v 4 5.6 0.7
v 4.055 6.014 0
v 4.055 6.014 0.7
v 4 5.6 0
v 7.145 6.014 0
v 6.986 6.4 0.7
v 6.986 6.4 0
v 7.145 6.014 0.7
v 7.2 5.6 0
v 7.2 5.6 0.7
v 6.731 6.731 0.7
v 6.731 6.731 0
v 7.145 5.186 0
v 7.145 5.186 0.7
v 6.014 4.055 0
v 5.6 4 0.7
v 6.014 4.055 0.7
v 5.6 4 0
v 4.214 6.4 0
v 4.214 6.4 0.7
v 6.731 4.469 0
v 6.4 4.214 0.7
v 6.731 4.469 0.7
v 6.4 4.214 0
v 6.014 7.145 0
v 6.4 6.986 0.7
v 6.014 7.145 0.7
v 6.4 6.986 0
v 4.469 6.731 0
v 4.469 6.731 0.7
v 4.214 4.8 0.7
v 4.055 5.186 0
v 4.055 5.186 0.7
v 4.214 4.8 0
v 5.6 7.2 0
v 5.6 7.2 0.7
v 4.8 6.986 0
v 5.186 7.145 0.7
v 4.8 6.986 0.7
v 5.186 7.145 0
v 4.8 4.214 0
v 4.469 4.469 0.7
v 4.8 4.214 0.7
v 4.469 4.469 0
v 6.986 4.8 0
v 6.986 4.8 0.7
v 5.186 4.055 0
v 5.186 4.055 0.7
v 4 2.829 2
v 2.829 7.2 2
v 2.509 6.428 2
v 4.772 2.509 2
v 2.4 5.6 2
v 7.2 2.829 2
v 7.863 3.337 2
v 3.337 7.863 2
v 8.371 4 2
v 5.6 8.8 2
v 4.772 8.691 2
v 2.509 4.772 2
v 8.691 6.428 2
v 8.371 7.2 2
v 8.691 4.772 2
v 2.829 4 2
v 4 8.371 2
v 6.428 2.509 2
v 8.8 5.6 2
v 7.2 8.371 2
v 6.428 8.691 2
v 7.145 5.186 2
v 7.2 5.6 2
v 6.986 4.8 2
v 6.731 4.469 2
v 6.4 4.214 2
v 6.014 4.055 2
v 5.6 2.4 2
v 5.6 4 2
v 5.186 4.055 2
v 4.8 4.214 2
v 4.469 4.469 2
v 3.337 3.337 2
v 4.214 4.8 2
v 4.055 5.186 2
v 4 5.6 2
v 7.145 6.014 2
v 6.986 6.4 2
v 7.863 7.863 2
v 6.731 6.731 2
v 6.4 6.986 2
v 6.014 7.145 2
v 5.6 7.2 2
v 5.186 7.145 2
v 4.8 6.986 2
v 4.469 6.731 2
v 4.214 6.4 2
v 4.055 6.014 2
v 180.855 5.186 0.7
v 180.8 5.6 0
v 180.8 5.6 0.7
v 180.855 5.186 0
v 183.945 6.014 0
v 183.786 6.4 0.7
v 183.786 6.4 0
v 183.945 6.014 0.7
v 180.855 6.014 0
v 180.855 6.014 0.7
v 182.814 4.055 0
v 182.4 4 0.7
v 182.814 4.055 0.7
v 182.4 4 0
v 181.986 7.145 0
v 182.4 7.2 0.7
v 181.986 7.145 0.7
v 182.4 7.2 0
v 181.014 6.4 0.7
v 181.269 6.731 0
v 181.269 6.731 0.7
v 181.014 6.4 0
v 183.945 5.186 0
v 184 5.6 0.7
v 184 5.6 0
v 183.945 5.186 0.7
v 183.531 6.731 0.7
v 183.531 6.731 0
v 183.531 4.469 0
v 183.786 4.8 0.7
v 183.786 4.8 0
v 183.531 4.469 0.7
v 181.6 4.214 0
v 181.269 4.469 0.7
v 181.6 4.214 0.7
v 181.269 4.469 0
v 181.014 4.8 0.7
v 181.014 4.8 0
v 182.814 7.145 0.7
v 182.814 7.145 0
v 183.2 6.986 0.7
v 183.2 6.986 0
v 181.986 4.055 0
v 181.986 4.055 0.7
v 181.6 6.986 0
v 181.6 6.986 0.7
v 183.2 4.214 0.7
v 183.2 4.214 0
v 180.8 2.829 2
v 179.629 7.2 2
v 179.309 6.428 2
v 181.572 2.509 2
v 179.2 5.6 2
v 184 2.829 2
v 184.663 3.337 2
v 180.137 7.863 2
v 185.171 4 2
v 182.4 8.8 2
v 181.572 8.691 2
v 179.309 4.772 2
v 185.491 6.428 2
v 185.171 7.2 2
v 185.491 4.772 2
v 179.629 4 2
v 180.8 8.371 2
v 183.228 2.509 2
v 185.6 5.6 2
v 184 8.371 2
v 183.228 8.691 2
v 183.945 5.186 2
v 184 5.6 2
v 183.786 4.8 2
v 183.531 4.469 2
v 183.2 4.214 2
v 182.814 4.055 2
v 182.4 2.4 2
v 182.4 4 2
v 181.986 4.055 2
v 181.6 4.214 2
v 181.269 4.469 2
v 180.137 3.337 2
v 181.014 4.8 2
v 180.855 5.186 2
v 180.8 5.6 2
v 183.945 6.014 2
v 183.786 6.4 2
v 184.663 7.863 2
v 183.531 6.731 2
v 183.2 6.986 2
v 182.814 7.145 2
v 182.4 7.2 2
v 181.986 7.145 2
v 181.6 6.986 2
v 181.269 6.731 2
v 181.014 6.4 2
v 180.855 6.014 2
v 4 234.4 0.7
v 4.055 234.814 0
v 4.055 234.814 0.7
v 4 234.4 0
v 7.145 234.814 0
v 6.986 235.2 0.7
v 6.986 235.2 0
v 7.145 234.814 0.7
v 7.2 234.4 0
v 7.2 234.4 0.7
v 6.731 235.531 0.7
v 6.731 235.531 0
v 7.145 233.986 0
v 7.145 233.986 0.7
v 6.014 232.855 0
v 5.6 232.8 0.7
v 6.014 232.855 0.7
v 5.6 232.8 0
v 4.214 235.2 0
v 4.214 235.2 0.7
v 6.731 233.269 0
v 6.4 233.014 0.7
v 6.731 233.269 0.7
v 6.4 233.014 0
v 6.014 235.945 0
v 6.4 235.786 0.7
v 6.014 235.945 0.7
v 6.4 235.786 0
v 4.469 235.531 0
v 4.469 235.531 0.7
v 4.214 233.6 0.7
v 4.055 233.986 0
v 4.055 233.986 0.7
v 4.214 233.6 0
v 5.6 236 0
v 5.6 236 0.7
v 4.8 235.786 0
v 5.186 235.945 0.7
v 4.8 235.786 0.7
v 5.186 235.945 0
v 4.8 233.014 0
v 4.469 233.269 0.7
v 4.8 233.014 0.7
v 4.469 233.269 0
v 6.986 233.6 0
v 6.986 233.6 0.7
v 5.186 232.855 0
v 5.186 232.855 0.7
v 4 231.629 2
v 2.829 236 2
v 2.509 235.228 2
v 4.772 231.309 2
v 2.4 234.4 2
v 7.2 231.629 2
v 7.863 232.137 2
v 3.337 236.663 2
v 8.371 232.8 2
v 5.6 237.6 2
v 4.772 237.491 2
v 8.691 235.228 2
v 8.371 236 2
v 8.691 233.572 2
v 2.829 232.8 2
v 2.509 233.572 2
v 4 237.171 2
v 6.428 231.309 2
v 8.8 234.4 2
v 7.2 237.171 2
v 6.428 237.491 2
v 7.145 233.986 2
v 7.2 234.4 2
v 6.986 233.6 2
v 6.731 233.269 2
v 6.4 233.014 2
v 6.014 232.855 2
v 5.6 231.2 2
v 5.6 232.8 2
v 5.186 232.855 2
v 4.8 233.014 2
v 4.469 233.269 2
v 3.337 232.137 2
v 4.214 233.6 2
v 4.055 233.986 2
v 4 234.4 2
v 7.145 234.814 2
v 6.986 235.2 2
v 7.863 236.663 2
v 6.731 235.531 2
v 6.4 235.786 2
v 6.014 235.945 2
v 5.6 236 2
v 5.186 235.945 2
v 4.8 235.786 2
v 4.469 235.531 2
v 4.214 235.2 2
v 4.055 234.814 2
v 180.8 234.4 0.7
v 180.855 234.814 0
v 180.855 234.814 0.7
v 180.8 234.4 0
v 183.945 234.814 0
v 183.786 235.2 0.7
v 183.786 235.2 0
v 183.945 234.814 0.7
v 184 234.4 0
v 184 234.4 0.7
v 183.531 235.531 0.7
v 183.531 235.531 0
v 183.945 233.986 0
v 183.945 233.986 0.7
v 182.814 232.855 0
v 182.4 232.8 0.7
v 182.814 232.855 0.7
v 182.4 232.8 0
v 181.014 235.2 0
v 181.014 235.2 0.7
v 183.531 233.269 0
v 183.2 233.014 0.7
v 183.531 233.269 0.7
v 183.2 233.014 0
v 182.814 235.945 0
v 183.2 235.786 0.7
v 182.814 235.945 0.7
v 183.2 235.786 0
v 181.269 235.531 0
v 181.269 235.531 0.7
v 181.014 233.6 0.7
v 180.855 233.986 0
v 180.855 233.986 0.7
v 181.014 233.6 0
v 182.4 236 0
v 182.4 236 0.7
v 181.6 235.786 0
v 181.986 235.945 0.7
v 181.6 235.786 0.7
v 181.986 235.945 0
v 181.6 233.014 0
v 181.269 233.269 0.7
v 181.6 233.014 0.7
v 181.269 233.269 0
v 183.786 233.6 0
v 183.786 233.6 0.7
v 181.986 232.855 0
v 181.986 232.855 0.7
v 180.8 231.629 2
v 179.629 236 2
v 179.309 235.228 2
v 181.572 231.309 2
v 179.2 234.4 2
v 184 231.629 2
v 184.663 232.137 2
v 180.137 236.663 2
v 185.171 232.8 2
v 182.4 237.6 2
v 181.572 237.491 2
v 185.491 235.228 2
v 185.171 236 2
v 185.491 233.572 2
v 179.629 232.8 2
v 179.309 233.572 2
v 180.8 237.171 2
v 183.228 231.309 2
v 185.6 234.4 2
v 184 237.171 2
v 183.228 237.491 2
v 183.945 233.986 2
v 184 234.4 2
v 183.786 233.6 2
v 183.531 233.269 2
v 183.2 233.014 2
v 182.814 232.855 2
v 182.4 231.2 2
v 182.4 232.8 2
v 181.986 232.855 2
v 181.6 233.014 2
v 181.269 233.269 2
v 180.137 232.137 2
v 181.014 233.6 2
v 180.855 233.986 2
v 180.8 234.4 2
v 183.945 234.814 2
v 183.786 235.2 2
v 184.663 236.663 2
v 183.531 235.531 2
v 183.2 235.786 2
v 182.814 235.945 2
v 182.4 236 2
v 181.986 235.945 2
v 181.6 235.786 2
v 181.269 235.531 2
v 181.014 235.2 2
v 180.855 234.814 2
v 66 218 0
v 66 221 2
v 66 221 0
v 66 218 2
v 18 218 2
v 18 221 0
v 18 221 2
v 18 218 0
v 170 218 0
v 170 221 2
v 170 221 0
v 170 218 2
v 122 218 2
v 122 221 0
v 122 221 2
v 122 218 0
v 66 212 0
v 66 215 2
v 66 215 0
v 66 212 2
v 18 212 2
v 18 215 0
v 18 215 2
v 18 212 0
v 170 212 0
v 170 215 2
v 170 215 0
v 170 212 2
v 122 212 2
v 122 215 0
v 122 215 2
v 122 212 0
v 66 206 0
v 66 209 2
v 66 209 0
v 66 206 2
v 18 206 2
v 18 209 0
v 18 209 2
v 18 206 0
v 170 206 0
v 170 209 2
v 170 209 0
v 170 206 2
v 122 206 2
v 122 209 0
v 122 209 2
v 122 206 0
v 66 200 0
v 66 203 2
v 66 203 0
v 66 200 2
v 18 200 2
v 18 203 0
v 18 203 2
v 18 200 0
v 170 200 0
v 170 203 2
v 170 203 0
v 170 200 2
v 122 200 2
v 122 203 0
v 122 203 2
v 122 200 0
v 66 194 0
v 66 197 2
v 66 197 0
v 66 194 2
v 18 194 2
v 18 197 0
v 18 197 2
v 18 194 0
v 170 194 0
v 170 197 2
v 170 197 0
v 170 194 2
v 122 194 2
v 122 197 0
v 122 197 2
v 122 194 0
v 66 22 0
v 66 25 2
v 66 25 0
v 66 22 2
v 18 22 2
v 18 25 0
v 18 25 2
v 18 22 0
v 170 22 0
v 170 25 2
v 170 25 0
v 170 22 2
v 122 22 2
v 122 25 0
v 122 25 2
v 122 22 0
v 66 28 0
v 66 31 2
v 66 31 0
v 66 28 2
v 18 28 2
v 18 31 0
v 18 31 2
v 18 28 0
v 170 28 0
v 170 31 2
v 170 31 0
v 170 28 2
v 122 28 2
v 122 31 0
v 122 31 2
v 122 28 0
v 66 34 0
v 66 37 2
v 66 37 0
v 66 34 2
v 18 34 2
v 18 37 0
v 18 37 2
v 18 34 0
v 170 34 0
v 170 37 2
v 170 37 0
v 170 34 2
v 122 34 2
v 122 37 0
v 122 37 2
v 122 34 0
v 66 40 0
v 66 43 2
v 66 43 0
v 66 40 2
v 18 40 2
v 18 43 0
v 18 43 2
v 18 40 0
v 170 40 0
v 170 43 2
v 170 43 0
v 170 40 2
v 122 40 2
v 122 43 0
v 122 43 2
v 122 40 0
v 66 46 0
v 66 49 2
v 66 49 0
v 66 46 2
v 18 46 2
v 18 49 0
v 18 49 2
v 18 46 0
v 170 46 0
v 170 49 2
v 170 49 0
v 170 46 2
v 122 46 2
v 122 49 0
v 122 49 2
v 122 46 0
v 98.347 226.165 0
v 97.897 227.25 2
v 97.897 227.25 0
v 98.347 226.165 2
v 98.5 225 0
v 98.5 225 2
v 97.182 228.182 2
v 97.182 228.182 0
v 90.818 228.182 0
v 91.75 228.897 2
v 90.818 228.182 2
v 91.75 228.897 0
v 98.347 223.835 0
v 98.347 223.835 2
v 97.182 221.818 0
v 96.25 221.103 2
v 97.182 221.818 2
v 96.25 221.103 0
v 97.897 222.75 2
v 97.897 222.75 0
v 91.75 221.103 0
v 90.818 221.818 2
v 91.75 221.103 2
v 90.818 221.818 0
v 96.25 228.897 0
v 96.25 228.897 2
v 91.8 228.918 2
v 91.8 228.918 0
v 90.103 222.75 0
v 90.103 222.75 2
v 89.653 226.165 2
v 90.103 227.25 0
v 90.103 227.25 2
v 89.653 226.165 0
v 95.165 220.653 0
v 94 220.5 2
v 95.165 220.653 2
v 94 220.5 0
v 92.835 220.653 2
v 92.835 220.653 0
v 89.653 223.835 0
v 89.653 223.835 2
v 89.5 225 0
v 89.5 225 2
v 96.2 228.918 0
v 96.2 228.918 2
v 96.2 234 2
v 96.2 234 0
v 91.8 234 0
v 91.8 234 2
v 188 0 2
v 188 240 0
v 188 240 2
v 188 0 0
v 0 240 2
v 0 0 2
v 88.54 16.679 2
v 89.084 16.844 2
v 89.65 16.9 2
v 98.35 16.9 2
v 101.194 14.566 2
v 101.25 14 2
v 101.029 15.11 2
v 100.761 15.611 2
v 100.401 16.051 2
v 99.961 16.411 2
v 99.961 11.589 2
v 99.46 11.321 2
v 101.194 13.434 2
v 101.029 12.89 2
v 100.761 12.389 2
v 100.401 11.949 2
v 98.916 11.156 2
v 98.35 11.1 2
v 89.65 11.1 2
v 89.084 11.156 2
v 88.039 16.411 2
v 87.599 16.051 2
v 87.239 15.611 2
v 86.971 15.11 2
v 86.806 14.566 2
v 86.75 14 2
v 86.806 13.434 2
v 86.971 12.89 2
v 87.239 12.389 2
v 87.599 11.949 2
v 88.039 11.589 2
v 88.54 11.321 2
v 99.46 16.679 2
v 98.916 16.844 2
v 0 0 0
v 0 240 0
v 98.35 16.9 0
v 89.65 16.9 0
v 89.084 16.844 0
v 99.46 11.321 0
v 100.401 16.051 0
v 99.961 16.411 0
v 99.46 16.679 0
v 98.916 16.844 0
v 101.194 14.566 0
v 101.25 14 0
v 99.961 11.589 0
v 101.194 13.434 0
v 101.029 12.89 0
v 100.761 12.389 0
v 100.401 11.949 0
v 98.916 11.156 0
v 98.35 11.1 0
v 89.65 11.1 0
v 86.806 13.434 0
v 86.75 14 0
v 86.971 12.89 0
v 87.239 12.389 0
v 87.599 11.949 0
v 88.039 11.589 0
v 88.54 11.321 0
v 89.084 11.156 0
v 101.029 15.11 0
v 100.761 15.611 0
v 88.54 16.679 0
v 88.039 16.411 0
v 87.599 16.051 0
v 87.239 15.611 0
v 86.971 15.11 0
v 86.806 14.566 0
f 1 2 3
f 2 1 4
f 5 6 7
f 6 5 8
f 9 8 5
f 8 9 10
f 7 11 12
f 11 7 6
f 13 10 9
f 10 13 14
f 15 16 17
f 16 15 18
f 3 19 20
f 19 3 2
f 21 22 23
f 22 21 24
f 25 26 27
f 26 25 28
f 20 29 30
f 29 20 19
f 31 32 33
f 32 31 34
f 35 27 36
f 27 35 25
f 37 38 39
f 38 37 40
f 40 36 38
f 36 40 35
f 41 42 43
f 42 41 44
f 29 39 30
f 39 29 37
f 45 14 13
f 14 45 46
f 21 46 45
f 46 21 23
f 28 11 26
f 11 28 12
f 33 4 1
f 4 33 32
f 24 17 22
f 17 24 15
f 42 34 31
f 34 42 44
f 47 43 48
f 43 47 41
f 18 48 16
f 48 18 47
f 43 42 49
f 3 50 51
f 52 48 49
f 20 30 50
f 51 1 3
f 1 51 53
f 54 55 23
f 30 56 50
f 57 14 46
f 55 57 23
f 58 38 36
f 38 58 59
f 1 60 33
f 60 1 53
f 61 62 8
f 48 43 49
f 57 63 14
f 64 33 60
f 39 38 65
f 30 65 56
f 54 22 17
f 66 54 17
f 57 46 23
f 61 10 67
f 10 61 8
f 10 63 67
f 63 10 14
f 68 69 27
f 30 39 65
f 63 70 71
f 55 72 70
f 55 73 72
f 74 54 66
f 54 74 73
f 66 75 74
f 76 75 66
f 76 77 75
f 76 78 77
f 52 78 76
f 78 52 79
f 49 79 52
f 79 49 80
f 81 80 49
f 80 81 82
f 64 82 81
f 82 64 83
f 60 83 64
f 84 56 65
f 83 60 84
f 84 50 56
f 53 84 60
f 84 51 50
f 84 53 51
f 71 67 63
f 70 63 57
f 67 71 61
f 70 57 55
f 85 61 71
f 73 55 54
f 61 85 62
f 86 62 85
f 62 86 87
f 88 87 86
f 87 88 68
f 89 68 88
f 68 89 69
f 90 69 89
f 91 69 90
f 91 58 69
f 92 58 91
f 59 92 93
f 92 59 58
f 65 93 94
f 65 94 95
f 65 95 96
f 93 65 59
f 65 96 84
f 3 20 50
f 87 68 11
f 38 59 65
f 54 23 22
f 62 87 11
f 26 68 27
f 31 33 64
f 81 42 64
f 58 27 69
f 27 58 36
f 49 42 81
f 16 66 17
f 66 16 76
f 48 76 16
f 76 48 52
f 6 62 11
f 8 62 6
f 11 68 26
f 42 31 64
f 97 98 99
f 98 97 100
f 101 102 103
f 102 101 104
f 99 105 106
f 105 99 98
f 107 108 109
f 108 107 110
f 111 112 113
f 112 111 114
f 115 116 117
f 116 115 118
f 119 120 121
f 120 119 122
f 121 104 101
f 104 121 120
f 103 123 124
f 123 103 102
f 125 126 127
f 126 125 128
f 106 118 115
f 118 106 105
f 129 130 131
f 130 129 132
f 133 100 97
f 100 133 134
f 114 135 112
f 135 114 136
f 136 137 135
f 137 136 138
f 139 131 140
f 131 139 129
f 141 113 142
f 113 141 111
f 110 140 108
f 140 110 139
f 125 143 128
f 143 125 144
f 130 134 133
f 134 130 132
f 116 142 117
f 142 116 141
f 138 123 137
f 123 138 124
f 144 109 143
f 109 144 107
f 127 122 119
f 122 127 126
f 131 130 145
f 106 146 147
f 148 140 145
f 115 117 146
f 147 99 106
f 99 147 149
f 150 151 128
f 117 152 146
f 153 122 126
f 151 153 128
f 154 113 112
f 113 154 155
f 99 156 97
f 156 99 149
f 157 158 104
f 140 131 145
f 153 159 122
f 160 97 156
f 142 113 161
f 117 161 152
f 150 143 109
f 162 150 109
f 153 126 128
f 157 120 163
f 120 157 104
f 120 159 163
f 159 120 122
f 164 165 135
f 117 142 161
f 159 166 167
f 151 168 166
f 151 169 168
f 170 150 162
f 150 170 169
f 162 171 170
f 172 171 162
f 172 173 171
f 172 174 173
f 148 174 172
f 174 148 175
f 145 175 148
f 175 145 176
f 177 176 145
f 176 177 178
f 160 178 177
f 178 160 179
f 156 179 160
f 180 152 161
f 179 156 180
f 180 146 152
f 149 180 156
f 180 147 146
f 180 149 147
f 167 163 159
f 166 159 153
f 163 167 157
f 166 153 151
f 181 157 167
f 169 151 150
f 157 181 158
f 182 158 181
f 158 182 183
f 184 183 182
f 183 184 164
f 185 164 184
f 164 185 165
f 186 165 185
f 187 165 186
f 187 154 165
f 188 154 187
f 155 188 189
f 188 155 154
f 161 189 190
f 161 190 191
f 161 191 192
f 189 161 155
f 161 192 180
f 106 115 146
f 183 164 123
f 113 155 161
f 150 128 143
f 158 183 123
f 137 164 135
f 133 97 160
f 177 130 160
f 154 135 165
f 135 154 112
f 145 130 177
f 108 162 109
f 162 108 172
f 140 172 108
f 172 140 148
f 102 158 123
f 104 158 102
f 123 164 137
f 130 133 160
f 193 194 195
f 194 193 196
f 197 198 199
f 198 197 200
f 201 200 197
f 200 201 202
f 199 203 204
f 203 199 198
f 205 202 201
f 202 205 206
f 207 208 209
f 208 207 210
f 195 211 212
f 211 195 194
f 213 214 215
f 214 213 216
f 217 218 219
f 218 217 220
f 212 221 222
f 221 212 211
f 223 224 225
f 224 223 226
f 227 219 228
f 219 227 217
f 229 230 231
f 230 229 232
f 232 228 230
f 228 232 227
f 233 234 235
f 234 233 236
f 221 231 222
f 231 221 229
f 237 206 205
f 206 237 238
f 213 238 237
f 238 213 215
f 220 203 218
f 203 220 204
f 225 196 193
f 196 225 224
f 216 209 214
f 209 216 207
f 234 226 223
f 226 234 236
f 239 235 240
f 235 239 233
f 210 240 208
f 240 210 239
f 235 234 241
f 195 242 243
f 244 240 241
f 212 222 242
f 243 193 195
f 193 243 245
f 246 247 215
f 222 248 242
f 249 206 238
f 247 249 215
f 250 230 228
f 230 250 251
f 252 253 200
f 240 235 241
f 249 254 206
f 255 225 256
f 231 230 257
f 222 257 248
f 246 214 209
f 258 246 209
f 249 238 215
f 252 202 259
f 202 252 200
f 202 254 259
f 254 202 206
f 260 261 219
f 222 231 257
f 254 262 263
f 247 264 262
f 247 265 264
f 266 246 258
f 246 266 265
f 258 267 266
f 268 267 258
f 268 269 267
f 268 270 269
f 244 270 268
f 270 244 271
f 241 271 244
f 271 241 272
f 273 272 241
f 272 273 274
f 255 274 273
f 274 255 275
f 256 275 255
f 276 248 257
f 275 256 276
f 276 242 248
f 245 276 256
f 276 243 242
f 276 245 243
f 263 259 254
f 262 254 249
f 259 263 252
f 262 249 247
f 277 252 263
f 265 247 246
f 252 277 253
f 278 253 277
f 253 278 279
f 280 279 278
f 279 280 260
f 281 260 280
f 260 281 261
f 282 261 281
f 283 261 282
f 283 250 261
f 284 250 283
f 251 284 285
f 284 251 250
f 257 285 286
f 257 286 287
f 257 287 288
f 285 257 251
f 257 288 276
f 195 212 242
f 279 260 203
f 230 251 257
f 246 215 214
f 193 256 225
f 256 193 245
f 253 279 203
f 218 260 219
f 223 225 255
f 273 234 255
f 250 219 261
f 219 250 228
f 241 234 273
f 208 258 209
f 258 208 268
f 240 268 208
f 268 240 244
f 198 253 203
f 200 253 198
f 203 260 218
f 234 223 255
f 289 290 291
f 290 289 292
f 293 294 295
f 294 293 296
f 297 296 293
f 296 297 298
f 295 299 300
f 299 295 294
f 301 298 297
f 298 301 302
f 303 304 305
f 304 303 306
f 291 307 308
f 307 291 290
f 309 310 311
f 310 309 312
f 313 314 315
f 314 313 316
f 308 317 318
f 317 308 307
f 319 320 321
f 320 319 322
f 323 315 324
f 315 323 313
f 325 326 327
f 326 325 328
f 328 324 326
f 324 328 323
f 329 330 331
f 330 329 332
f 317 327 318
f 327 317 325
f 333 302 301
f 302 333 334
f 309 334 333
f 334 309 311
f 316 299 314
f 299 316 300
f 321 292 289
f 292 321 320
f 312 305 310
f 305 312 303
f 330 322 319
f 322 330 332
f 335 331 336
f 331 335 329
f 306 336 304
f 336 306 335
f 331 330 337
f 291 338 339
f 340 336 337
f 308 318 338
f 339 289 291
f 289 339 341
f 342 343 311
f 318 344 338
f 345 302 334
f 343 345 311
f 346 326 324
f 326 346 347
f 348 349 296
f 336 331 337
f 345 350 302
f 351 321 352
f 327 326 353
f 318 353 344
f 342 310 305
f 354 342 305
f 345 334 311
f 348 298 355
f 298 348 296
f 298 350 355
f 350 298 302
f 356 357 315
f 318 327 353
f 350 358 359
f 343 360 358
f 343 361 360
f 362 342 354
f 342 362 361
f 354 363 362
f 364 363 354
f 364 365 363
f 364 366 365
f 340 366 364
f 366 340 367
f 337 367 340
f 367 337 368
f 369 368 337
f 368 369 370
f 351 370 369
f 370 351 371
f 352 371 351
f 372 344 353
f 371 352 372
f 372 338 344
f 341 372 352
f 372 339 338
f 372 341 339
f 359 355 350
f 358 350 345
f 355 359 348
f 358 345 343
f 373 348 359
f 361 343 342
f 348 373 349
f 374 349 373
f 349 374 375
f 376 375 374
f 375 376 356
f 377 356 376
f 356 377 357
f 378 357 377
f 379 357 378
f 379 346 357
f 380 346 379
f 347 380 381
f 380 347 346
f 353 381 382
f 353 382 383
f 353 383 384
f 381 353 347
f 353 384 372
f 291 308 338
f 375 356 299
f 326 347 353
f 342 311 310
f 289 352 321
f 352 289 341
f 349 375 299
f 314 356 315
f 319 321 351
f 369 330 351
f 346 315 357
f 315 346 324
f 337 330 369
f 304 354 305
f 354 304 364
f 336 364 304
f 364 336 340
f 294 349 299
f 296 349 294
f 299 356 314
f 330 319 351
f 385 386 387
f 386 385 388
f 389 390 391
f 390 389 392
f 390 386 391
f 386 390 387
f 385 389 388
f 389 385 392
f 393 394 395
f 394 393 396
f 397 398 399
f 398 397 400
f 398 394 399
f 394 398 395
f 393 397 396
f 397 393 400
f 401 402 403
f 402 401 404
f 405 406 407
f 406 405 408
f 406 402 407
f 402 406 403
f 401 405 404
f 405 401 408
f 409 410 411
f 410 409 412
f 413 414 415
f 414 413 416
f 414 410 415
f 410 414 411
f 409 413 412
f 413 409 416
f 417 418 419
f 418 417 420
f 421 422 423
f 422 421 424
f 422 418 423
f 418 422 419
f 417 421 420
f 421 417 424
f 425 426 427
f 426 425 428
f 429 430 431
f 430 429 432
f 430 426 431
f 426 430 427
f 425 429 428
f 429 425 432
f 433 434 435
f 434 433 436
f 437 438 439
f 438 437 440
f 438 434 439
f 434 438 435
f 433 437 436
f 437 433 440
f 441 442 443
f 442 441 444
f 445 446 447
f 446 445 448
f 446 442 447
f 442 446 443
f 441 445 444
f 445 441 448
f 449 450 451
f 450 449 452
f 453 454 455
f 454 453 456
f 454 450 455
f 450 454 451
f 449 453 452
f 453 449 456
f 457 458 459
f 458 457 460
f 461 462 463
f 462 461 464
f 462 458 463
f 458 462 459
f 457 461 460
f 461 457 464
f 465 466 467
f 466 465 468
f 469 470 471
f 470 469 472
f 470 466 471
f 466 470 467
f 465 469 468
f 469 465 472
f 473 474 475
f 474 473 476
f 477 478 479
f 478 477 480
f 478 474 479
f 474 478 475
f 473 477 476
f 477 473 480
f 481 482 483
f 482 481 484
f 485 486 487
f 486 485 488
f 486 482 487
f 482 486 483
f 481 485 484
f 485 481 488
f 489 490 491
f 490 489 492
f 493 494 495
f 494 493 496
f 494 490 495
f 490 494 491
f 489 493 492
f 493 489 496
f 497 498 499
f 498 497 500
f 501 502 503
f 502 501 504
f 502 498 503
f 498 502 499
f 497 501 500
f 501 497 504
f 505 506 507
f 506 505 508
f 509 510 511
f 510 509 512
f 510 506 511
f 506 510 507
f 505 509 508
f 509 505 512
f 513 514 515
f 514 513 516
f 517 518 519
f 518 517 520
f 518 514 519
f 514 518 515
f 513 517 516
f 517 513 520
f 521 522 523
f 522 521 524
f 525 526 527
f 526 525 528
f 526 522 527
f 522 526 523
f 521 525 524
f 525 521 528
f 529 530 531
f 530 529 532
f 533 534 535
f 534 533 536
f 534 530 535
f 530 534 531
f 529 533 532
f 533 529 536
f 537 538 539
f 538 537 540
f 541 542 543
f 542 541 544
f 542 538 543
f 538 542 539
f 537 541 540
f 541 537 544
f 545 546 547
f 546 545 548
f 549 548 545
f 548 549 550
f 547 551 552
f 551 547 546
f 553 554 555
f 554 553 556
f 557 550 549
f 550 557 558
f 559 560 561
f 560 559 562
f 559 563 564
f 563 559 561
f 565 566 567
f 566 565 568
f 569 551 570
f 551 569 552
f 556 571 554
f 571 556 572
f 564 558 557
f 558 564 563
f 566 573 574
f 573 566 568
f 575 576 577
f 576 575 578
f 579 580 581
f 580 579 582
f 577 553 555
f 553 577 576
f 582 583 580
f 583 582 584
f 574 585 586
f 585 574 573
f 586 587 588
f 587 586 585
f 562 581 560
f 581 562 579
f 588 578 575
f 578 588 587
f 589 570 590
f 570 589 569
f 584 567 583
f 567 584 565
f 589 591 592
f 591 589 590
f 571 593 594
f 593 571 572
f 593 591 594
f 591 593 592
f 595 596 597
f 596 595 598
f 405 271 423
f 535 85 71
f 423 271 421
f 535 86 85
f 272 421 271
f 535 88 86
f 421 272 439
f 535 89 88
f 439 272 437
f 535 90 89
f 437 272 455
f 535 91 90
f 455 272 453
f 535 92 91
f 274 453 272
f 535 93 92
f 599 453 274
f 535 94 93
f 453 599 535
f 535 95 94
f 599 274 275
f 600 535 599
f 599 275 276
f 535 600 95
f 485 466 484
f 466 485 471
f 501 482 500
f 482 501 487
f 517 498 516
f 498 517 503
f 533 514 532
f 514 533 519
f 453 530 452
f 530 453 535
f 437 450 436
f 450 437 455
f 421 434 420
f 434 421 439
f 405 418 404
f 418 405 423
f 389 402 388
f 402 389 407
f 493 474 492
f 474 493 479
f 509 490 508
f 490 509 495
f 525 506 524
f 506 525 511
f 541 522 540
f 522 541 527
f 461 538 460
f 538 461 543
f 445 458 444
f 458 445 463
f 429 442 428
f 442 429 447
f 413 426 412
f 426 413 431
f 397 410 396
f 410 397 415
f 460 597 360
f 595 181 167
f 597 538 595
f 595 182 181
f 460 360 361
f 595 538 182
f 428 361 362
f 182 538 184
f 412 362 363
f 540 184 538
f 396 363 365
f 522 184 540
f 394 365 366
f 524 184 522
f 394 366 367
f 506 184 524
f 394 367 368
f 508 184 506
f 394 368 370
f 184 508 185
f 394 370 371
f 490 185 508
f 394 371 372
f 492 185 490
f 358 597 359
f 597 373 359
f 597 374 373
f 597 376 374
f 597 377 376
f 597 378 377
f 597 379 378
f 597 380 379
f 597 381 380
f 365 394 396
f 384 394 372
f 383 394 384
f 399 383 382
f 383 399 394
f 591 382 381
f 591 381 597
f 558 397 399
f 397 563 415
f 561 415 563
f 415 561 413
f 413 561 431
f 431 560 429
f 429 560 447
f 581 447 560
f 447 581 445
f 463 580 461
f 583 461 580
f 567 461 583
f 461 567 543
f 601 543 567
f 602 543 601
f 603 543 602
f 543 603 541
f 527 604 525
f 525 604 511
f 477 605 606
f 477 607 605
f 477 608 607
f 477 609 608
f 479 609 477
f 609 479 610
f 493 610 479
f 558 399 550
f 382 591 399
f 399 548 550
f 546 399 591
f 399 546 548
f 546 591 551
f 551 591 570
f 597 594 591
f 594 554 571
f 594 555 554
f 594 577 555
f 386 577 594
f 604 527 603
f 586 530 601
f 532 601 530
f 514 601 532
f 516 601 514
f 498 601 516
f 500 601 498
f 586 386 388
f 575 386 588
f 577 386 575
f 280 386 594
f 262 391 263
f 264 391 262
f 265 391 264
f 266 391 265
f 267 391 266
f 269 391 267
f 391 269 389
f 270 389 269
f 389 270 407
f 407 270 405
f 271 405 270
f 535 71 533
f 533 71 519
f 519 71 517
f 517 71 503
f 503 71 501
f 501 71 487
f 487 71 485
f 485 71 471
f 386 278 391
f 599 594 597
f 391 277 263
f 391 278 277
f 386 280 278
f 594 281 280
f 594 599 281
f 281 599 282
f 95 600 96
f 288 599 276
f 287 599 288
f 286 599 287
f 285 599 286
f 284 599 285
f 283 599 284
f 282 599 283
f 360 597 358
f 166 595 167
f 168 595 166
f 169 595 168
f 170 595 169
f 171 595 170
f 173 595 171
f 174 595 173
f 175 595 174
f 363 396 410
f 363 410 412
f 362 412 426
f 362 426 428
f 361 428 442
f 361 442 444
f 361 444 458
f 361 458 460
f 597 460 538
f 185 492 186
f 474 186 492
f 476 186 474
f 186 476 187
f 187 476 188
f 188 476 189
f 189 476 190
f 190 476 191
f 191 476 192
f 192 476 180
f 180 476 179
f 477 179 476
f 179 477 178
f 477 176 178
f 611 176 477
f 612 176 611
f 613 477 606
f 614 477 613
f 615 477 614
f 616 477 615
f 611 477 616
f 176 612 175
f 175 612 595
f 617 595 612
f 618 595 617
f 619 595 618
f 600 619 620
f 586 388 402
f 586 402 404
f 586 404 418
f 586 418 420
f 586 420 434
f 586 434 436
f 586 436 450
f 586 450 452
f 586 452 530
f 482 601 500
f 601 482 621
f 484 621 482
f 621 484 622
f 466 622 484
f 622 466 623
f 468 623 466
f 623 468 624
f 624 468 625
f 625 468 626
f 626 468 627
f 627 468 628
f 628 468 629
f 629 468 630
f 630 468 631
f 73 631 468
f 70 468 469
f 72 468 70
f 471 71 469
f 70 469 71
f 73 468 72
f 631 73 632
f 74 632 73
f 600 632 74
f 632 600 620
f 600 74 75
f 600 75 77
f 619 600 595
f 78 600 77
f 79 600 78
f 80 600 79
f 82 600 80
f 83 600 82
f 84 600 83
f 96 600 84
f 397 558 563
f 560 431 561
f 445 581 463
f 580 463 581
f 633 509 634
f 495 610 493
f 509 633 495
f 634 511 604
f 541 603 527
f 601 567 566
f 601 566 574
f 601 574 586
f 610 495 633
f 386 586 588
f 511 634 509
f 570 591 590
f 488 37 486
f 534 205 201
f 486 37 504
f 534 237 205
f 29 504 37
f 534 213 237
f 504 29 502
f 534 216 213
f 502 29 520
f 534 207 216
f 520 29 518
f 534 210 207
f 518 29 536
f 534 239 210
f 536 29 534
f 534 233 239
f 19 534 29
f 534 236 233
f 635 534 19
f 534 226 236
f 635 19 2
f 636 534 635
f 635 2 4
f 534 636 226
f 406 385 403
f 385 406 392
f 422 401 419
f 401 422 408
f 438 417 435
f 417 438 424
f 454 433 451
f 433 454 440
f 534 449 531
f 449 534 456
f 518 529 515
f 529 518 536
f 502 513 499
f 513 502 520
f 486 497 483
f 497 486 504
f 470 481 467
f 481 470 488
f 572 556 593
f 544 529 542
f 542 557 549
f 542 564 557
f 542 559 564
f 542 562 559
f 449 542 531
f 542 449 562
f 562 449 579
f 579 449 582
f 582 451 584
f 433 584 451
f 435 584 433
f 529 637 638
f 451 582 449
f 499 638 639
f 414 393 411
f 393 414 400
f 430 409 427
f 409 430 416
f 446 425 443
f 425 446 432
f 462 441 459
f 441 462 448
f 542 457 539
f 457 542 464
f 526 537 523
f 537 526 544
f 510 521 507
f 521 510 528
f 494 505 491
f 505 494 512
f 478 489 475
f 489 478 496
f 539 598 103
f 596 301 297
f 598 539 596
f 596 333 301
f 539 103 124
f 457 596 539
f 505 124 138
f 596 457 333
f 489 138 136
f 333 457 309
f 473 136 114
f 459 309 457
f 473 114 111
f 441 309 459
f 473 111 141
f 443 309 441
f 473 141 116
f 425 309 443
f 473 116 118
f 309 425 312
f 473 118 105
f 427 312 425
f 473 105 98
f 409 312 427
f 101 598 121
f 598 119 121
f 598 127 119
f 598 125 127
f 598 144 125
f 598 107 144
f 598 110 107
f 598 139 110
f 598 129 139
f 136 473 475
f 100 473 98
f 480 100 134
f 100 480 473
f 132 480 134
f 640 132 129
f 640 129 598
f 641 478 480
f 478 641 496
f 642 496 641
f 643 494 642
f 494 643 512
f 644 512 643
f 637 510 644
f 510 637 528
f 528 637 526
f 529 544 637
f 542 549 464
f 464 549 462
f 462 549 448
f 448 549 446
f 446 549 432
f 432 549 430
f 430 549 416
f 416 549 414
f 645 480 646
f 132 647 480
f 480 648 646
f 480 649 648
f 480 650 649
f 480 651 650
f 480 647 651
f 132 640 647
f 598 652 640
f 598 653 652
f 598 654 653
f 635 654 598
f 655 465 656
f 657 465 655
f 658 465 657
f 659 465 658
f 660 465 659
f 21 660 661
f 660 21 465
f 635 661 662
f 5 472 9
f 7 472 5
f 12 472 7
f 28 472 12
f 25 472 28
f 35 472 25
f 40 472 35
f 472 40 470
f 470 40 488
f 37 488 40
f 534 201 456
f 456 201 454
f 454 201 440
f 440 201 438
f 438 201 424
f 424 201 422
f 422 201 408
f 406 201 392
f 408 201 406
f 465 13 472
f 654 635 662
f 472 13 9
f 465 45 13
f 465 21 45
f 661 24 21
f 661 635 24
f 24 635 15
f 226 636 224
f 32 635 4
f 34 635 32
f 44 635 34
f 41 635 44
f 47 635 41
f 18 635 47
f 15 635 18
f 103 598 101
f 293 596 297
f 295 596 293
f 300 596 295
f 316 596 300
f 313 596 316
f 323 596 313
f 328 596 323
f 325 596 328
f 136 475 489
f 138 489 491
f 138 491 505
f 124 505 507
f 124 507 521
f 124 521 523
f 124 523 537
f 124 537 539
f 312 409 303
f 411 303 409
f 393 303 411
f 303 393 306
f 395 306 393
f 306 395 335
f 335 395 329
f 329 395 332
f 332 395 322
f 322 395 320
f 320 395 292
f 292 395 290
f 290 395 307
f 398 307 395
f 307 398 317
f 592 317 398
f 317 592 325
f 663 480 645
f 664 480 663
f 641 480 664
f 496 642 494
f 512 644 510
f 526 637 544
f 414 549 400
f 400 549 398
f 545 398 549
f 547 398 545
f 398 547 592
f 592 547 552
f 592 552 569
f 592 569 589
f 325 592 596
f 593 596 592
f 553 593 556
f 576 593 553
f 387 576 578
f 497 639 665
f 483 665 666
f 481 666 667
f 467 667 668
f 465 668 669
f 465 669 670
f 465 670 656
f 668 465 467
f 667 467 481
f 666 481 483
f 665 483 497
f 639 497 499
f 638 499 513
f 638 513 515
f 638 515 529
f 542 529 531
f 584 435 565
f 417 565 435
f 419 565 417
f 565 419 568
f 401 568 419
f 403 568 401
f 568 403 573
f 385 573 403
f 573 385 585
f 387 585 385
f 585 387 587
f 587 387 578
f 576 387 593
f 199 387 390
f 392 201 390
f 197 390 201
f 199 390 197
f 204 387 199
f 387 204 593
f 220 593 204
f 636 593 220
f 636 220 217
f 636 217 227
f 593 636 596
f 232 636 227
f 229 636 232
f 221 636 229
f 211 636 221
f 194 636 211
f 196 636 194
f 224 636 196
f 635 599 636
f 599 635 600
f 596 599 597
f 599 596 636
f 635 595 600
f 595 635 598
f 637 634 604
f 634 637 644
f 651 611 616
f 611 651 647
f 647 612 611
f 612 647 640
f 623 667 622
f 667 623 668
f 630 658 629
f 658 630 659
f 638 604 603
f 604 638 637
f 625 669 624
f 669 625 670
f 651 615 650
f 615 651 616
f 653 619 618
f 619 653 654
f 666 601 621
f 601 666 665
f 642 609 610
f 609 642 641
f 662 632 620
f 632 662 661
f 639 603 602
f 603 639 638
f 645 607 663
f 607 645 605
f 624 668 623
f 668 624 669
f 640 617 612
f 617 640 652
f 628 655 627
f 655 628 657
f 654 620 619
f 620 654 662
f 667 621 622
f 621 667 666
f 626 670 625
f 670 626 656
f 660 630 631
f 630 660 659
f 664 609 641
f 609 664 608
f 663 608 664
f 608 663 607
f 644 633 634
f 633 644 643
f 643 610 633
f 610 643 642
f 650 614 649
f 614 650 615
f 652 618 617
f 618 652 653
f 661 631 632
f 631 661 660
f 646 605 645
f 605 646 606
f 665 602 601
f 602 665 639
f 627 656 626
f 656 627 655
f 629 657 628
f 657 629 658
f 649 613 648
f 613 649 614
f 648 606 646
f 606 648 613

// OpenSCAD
// ==============================================================================
// WORDCLOCK ESP32 - PIEZA 3: TAPA TRASERA SUPERPUESTA CON RANURA USB-C
// Parametric OpenSCAD Model for Bambu Lab (256x256 mm build plate)
// Versión 1: Tapa exterior de 188.0 x 240.0 mm para el cuerpo impreso originalmente
// ==============================================================================

// --- Parameters ---
box_w       = 188.0;   // Ancho total exterior de la tapa (mm)
box_h       = 240.0;   // Alto total exterior de la tapa (mm)
wall_thick  = 1.6;     // Coincide con las paredes del marco (1.6 mm)
lid_thick   = 2.0;     // Grosor de la tapa trasera (mm) - 10 capas de 0.20 mm

// Distancia del centro de los tornillos desde la esquina exterior (wall_thick + 4.0 = 5.6 mm)
screw_off   = wall_thick + 4.0; 

// --- Module: Tapa Trasera Completa ---
module wordclock_back_lid() {
    difference() {
        // 1. Placa Base Exterior de la Tapa (188.0 x 240.0 x 2.0 mm)
        cube([box_w, box_h, lid_thick]);

        // 2. Orificios avellanados (Countersunk) en las 4 esquinas para tornillos M3
        // Esquina Inferior Izquierda
        translate([screw_off, screw_off, -0.1]) {
            cylinder(r = 1.6, h = lid_thick + 0.2, $fn = 24);
            translate([0, 0, 0.8]) cylinder(r1 = 1.6, r2 = 3.2, h = 1.3, $fn = 24);
        }
        // Esquina Inferior Derecha
        translate([box_w - screw_off, screw_off, -0.1]) {
            cylinder(r = 1.6, h = lid_thick + 0.2, $fn = 24);
            translate([0, 0, 0.8]) cylinder(r1 = 1.6, r2 = 3.2, h = 1.3, $fn = 24);
        }
        // Esquina Superior Izquierda
        translate([screw_off, box_h - screw_off, -0.1]) {
            cylinder(r = 1.6, h = lid_thick + 0.2, $fn = 24);
            translate([0, 0, 0.8]) cylinder(r1 = 1.6, r2 = 3.2, h = 1.3, $fn = 24);
        }
        // Esquina Superior Derecha
        translate([box_w - screw_off, box_h - screw_off, -0.1]) {
            cylinder(r = 1.6, h = lid_thick + 0.2, $fn = 24);
            translate([0, 0, 0.8]) cylinder(r1 = 1.6, r2 = 3.2, h = 1.3, $fn = 24);
        }

        // 3. Ranuras de Ventilación Superior (Cooling Vents Izquierda y Derecha)
        for (i = [0 : 4]) {
            y_slot = box_h - 22 - (i * 6);
            translate([18, y_slot, -0.1])         cube([48, 3.0, lid_thick + 0.2]);
            translate([box_w - 66, y_slot, -0.1]) cube([48, 3.0, lid_thick + 0.2]);
        }

        // 4. Ranuras de Ventilación Inferior (Cooling Vents Izquierda y Derecha)
        for (i = [0 : 4]) {
            y_slot = 22 + (i * 6);
            translate([18, y_slot, -0.1])         cube([48, 3.0, lid_thick + 0.2]);
            translate([box_w - 66, y_slot, -0.1]) cube([48, 3.0, lid_thick + 0.2]);
        }

        // 5. RANURA USB-C OBLONGA / PANELSOCKET (Reemplaza al antiguo orificio circular)
        // Calado de 14.5 x 5.8 mm con bordes redondeados (r = 2.9 mm)
        translate([box_w / 2, 14.0, -0.1]) {
            hull() {
                translate([-4.35, 0, 0]) cylinder(r = 2.9, h = lid_thick + 0.2, $fn = 32);
                translate([ 4.35, 0, 0]) cylinder(r = 2.9, h = lid_thick + 0.2, $fn = 32);
            }
        }

        // 6. Muesca en forma de cerradura (Keyhole) para colgar en pared
        translate([box_w / 2, box_h - 15, -0.1]) {
            union() {
                cylinder(r = 4.5, h = lid_thick + 0.2, $fn = 24);
                translate([-2.2, 0, 0]) cube([4.4, 9.0, lid_thick + 0.2]);
            }
        }
    }
}

// Generar modelo
wordclock_back_lid();
